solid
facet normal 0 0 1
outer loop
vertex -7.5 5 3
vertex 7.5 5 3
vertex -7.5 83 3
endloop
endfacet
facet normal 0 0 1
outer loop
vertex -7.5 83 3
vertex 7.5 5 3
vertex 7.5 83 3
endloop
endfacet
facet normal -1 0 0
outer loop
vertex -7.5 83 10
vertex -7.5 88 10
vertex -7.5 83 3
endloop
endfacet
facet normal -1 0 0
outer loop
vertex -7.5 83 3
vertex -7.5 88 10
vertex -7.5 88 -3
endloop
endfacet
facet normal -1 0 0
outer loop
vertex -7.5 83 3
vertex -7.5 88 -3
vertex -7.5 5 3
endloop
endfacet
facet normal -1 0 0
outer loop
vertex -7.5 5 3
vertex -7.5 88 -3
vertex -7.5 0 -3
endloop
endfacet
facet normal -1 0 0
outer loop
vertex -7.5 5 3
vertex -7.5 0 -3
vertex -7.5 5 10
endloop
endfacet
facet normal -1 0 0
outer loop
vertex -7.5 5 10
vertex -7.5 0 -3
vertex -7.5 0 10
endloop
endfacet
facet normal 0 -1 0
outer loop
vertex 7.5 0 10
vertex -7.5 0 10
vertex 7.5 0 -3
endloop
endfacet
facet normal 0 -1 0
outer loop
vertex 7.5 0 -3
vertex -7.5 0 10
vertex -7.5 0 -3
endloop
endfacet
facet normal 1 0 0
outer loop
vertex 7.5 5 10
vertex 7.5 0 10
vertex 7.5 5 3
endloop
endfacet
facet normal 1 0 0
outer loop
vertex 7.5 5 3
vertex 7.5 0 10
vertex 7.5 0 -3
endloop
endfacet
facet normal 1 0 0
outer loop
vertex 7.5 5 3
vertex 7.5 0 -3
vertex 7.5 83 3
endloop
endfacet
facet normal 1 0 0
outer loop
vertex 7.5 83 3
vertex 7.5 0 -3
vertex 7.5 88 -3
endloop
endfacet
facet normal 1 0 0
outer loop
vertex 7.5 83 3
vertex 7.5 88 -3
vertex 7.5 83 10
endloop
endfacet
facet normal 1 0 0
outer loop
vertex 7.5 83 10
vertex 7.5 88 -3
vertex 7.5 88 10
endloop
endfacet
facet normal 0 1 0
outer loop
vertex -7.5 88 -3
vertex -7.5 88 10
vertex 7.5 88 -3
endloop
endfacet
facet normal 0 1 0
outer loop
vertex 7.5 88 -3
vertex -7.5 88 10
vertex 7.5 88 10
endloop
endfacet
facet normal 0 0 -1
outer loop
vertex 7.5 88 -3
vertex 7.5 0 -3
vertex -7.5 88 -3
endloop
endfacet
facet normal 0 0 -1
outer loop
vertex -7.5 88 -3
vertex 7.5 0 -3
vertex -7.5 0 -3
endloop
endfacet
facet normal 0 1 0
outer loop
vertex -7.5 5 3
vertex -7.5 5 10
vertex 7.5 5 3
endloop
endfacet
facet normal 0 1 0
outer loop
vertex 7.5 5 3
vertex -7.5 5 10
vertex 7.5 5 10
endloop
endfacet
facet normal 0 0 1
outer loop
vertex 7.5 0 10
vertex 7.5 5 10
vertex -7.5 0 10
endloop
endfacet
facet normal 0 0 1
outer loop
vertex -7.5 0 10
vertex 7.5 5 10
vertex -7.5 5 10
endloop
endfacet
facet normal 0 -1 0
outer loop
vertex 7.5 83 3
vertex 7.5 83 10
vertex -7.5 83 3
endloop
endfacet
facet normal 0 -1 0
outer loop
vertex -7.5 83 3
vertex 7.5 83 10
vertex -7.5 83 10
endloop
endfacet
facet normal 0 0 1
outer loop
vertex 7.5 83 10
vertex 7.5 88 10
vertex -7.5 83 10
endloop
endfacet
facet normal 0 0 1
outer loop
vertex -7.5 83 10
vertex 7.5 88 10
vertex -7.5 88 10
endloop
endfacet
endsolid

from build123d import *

# Parameters (mm, degrees)
SKETCH1_W           = 15
SKETCH1_H           = 88
BOSS_EXTRUDE1_DEPTH = 3
SKETCH2_W           = 15
SKETCH2_H           = 5
BOSS_EXTRUDE2_DEPTH = 10
SKETCH3_W           = 15
SKETCH3_H           = 5
BOSS_EXTRUDE3_DEPTH = 10


with BuildPart() as part:
    # Sketch1 → Boss-Extrude1 (new body, symmetric)
    with BuildSketch(Plane.XY):
        with Locations((0, 44)):
            Rectangle(SKETCH1_W, SKETCH1_H)
    extrude(amount=BOSS_EXTRUDE1_DEPTH, both=True)

    # Sketch2 → Boss-Extrude2 (add)
    with BuildSketch(Plane.XY):
        with Locations((0, 2.5)):
            Rectangle(SKETCH2_W, SKETCH2_H)
    extrude(amount=BOSS_EXTRUDE2_DEPTH)

    # Sketch3 → Boss-Extrude3 (add)
    with BuildSketch(Plane.XY):
        with Locations((0, 85.5)):
            Rectangle(SKETCH3_W, SKETCH3_H)
    extrude(amount=BOSS_EXTRUDE3_DEPTH)


solid = part.part
